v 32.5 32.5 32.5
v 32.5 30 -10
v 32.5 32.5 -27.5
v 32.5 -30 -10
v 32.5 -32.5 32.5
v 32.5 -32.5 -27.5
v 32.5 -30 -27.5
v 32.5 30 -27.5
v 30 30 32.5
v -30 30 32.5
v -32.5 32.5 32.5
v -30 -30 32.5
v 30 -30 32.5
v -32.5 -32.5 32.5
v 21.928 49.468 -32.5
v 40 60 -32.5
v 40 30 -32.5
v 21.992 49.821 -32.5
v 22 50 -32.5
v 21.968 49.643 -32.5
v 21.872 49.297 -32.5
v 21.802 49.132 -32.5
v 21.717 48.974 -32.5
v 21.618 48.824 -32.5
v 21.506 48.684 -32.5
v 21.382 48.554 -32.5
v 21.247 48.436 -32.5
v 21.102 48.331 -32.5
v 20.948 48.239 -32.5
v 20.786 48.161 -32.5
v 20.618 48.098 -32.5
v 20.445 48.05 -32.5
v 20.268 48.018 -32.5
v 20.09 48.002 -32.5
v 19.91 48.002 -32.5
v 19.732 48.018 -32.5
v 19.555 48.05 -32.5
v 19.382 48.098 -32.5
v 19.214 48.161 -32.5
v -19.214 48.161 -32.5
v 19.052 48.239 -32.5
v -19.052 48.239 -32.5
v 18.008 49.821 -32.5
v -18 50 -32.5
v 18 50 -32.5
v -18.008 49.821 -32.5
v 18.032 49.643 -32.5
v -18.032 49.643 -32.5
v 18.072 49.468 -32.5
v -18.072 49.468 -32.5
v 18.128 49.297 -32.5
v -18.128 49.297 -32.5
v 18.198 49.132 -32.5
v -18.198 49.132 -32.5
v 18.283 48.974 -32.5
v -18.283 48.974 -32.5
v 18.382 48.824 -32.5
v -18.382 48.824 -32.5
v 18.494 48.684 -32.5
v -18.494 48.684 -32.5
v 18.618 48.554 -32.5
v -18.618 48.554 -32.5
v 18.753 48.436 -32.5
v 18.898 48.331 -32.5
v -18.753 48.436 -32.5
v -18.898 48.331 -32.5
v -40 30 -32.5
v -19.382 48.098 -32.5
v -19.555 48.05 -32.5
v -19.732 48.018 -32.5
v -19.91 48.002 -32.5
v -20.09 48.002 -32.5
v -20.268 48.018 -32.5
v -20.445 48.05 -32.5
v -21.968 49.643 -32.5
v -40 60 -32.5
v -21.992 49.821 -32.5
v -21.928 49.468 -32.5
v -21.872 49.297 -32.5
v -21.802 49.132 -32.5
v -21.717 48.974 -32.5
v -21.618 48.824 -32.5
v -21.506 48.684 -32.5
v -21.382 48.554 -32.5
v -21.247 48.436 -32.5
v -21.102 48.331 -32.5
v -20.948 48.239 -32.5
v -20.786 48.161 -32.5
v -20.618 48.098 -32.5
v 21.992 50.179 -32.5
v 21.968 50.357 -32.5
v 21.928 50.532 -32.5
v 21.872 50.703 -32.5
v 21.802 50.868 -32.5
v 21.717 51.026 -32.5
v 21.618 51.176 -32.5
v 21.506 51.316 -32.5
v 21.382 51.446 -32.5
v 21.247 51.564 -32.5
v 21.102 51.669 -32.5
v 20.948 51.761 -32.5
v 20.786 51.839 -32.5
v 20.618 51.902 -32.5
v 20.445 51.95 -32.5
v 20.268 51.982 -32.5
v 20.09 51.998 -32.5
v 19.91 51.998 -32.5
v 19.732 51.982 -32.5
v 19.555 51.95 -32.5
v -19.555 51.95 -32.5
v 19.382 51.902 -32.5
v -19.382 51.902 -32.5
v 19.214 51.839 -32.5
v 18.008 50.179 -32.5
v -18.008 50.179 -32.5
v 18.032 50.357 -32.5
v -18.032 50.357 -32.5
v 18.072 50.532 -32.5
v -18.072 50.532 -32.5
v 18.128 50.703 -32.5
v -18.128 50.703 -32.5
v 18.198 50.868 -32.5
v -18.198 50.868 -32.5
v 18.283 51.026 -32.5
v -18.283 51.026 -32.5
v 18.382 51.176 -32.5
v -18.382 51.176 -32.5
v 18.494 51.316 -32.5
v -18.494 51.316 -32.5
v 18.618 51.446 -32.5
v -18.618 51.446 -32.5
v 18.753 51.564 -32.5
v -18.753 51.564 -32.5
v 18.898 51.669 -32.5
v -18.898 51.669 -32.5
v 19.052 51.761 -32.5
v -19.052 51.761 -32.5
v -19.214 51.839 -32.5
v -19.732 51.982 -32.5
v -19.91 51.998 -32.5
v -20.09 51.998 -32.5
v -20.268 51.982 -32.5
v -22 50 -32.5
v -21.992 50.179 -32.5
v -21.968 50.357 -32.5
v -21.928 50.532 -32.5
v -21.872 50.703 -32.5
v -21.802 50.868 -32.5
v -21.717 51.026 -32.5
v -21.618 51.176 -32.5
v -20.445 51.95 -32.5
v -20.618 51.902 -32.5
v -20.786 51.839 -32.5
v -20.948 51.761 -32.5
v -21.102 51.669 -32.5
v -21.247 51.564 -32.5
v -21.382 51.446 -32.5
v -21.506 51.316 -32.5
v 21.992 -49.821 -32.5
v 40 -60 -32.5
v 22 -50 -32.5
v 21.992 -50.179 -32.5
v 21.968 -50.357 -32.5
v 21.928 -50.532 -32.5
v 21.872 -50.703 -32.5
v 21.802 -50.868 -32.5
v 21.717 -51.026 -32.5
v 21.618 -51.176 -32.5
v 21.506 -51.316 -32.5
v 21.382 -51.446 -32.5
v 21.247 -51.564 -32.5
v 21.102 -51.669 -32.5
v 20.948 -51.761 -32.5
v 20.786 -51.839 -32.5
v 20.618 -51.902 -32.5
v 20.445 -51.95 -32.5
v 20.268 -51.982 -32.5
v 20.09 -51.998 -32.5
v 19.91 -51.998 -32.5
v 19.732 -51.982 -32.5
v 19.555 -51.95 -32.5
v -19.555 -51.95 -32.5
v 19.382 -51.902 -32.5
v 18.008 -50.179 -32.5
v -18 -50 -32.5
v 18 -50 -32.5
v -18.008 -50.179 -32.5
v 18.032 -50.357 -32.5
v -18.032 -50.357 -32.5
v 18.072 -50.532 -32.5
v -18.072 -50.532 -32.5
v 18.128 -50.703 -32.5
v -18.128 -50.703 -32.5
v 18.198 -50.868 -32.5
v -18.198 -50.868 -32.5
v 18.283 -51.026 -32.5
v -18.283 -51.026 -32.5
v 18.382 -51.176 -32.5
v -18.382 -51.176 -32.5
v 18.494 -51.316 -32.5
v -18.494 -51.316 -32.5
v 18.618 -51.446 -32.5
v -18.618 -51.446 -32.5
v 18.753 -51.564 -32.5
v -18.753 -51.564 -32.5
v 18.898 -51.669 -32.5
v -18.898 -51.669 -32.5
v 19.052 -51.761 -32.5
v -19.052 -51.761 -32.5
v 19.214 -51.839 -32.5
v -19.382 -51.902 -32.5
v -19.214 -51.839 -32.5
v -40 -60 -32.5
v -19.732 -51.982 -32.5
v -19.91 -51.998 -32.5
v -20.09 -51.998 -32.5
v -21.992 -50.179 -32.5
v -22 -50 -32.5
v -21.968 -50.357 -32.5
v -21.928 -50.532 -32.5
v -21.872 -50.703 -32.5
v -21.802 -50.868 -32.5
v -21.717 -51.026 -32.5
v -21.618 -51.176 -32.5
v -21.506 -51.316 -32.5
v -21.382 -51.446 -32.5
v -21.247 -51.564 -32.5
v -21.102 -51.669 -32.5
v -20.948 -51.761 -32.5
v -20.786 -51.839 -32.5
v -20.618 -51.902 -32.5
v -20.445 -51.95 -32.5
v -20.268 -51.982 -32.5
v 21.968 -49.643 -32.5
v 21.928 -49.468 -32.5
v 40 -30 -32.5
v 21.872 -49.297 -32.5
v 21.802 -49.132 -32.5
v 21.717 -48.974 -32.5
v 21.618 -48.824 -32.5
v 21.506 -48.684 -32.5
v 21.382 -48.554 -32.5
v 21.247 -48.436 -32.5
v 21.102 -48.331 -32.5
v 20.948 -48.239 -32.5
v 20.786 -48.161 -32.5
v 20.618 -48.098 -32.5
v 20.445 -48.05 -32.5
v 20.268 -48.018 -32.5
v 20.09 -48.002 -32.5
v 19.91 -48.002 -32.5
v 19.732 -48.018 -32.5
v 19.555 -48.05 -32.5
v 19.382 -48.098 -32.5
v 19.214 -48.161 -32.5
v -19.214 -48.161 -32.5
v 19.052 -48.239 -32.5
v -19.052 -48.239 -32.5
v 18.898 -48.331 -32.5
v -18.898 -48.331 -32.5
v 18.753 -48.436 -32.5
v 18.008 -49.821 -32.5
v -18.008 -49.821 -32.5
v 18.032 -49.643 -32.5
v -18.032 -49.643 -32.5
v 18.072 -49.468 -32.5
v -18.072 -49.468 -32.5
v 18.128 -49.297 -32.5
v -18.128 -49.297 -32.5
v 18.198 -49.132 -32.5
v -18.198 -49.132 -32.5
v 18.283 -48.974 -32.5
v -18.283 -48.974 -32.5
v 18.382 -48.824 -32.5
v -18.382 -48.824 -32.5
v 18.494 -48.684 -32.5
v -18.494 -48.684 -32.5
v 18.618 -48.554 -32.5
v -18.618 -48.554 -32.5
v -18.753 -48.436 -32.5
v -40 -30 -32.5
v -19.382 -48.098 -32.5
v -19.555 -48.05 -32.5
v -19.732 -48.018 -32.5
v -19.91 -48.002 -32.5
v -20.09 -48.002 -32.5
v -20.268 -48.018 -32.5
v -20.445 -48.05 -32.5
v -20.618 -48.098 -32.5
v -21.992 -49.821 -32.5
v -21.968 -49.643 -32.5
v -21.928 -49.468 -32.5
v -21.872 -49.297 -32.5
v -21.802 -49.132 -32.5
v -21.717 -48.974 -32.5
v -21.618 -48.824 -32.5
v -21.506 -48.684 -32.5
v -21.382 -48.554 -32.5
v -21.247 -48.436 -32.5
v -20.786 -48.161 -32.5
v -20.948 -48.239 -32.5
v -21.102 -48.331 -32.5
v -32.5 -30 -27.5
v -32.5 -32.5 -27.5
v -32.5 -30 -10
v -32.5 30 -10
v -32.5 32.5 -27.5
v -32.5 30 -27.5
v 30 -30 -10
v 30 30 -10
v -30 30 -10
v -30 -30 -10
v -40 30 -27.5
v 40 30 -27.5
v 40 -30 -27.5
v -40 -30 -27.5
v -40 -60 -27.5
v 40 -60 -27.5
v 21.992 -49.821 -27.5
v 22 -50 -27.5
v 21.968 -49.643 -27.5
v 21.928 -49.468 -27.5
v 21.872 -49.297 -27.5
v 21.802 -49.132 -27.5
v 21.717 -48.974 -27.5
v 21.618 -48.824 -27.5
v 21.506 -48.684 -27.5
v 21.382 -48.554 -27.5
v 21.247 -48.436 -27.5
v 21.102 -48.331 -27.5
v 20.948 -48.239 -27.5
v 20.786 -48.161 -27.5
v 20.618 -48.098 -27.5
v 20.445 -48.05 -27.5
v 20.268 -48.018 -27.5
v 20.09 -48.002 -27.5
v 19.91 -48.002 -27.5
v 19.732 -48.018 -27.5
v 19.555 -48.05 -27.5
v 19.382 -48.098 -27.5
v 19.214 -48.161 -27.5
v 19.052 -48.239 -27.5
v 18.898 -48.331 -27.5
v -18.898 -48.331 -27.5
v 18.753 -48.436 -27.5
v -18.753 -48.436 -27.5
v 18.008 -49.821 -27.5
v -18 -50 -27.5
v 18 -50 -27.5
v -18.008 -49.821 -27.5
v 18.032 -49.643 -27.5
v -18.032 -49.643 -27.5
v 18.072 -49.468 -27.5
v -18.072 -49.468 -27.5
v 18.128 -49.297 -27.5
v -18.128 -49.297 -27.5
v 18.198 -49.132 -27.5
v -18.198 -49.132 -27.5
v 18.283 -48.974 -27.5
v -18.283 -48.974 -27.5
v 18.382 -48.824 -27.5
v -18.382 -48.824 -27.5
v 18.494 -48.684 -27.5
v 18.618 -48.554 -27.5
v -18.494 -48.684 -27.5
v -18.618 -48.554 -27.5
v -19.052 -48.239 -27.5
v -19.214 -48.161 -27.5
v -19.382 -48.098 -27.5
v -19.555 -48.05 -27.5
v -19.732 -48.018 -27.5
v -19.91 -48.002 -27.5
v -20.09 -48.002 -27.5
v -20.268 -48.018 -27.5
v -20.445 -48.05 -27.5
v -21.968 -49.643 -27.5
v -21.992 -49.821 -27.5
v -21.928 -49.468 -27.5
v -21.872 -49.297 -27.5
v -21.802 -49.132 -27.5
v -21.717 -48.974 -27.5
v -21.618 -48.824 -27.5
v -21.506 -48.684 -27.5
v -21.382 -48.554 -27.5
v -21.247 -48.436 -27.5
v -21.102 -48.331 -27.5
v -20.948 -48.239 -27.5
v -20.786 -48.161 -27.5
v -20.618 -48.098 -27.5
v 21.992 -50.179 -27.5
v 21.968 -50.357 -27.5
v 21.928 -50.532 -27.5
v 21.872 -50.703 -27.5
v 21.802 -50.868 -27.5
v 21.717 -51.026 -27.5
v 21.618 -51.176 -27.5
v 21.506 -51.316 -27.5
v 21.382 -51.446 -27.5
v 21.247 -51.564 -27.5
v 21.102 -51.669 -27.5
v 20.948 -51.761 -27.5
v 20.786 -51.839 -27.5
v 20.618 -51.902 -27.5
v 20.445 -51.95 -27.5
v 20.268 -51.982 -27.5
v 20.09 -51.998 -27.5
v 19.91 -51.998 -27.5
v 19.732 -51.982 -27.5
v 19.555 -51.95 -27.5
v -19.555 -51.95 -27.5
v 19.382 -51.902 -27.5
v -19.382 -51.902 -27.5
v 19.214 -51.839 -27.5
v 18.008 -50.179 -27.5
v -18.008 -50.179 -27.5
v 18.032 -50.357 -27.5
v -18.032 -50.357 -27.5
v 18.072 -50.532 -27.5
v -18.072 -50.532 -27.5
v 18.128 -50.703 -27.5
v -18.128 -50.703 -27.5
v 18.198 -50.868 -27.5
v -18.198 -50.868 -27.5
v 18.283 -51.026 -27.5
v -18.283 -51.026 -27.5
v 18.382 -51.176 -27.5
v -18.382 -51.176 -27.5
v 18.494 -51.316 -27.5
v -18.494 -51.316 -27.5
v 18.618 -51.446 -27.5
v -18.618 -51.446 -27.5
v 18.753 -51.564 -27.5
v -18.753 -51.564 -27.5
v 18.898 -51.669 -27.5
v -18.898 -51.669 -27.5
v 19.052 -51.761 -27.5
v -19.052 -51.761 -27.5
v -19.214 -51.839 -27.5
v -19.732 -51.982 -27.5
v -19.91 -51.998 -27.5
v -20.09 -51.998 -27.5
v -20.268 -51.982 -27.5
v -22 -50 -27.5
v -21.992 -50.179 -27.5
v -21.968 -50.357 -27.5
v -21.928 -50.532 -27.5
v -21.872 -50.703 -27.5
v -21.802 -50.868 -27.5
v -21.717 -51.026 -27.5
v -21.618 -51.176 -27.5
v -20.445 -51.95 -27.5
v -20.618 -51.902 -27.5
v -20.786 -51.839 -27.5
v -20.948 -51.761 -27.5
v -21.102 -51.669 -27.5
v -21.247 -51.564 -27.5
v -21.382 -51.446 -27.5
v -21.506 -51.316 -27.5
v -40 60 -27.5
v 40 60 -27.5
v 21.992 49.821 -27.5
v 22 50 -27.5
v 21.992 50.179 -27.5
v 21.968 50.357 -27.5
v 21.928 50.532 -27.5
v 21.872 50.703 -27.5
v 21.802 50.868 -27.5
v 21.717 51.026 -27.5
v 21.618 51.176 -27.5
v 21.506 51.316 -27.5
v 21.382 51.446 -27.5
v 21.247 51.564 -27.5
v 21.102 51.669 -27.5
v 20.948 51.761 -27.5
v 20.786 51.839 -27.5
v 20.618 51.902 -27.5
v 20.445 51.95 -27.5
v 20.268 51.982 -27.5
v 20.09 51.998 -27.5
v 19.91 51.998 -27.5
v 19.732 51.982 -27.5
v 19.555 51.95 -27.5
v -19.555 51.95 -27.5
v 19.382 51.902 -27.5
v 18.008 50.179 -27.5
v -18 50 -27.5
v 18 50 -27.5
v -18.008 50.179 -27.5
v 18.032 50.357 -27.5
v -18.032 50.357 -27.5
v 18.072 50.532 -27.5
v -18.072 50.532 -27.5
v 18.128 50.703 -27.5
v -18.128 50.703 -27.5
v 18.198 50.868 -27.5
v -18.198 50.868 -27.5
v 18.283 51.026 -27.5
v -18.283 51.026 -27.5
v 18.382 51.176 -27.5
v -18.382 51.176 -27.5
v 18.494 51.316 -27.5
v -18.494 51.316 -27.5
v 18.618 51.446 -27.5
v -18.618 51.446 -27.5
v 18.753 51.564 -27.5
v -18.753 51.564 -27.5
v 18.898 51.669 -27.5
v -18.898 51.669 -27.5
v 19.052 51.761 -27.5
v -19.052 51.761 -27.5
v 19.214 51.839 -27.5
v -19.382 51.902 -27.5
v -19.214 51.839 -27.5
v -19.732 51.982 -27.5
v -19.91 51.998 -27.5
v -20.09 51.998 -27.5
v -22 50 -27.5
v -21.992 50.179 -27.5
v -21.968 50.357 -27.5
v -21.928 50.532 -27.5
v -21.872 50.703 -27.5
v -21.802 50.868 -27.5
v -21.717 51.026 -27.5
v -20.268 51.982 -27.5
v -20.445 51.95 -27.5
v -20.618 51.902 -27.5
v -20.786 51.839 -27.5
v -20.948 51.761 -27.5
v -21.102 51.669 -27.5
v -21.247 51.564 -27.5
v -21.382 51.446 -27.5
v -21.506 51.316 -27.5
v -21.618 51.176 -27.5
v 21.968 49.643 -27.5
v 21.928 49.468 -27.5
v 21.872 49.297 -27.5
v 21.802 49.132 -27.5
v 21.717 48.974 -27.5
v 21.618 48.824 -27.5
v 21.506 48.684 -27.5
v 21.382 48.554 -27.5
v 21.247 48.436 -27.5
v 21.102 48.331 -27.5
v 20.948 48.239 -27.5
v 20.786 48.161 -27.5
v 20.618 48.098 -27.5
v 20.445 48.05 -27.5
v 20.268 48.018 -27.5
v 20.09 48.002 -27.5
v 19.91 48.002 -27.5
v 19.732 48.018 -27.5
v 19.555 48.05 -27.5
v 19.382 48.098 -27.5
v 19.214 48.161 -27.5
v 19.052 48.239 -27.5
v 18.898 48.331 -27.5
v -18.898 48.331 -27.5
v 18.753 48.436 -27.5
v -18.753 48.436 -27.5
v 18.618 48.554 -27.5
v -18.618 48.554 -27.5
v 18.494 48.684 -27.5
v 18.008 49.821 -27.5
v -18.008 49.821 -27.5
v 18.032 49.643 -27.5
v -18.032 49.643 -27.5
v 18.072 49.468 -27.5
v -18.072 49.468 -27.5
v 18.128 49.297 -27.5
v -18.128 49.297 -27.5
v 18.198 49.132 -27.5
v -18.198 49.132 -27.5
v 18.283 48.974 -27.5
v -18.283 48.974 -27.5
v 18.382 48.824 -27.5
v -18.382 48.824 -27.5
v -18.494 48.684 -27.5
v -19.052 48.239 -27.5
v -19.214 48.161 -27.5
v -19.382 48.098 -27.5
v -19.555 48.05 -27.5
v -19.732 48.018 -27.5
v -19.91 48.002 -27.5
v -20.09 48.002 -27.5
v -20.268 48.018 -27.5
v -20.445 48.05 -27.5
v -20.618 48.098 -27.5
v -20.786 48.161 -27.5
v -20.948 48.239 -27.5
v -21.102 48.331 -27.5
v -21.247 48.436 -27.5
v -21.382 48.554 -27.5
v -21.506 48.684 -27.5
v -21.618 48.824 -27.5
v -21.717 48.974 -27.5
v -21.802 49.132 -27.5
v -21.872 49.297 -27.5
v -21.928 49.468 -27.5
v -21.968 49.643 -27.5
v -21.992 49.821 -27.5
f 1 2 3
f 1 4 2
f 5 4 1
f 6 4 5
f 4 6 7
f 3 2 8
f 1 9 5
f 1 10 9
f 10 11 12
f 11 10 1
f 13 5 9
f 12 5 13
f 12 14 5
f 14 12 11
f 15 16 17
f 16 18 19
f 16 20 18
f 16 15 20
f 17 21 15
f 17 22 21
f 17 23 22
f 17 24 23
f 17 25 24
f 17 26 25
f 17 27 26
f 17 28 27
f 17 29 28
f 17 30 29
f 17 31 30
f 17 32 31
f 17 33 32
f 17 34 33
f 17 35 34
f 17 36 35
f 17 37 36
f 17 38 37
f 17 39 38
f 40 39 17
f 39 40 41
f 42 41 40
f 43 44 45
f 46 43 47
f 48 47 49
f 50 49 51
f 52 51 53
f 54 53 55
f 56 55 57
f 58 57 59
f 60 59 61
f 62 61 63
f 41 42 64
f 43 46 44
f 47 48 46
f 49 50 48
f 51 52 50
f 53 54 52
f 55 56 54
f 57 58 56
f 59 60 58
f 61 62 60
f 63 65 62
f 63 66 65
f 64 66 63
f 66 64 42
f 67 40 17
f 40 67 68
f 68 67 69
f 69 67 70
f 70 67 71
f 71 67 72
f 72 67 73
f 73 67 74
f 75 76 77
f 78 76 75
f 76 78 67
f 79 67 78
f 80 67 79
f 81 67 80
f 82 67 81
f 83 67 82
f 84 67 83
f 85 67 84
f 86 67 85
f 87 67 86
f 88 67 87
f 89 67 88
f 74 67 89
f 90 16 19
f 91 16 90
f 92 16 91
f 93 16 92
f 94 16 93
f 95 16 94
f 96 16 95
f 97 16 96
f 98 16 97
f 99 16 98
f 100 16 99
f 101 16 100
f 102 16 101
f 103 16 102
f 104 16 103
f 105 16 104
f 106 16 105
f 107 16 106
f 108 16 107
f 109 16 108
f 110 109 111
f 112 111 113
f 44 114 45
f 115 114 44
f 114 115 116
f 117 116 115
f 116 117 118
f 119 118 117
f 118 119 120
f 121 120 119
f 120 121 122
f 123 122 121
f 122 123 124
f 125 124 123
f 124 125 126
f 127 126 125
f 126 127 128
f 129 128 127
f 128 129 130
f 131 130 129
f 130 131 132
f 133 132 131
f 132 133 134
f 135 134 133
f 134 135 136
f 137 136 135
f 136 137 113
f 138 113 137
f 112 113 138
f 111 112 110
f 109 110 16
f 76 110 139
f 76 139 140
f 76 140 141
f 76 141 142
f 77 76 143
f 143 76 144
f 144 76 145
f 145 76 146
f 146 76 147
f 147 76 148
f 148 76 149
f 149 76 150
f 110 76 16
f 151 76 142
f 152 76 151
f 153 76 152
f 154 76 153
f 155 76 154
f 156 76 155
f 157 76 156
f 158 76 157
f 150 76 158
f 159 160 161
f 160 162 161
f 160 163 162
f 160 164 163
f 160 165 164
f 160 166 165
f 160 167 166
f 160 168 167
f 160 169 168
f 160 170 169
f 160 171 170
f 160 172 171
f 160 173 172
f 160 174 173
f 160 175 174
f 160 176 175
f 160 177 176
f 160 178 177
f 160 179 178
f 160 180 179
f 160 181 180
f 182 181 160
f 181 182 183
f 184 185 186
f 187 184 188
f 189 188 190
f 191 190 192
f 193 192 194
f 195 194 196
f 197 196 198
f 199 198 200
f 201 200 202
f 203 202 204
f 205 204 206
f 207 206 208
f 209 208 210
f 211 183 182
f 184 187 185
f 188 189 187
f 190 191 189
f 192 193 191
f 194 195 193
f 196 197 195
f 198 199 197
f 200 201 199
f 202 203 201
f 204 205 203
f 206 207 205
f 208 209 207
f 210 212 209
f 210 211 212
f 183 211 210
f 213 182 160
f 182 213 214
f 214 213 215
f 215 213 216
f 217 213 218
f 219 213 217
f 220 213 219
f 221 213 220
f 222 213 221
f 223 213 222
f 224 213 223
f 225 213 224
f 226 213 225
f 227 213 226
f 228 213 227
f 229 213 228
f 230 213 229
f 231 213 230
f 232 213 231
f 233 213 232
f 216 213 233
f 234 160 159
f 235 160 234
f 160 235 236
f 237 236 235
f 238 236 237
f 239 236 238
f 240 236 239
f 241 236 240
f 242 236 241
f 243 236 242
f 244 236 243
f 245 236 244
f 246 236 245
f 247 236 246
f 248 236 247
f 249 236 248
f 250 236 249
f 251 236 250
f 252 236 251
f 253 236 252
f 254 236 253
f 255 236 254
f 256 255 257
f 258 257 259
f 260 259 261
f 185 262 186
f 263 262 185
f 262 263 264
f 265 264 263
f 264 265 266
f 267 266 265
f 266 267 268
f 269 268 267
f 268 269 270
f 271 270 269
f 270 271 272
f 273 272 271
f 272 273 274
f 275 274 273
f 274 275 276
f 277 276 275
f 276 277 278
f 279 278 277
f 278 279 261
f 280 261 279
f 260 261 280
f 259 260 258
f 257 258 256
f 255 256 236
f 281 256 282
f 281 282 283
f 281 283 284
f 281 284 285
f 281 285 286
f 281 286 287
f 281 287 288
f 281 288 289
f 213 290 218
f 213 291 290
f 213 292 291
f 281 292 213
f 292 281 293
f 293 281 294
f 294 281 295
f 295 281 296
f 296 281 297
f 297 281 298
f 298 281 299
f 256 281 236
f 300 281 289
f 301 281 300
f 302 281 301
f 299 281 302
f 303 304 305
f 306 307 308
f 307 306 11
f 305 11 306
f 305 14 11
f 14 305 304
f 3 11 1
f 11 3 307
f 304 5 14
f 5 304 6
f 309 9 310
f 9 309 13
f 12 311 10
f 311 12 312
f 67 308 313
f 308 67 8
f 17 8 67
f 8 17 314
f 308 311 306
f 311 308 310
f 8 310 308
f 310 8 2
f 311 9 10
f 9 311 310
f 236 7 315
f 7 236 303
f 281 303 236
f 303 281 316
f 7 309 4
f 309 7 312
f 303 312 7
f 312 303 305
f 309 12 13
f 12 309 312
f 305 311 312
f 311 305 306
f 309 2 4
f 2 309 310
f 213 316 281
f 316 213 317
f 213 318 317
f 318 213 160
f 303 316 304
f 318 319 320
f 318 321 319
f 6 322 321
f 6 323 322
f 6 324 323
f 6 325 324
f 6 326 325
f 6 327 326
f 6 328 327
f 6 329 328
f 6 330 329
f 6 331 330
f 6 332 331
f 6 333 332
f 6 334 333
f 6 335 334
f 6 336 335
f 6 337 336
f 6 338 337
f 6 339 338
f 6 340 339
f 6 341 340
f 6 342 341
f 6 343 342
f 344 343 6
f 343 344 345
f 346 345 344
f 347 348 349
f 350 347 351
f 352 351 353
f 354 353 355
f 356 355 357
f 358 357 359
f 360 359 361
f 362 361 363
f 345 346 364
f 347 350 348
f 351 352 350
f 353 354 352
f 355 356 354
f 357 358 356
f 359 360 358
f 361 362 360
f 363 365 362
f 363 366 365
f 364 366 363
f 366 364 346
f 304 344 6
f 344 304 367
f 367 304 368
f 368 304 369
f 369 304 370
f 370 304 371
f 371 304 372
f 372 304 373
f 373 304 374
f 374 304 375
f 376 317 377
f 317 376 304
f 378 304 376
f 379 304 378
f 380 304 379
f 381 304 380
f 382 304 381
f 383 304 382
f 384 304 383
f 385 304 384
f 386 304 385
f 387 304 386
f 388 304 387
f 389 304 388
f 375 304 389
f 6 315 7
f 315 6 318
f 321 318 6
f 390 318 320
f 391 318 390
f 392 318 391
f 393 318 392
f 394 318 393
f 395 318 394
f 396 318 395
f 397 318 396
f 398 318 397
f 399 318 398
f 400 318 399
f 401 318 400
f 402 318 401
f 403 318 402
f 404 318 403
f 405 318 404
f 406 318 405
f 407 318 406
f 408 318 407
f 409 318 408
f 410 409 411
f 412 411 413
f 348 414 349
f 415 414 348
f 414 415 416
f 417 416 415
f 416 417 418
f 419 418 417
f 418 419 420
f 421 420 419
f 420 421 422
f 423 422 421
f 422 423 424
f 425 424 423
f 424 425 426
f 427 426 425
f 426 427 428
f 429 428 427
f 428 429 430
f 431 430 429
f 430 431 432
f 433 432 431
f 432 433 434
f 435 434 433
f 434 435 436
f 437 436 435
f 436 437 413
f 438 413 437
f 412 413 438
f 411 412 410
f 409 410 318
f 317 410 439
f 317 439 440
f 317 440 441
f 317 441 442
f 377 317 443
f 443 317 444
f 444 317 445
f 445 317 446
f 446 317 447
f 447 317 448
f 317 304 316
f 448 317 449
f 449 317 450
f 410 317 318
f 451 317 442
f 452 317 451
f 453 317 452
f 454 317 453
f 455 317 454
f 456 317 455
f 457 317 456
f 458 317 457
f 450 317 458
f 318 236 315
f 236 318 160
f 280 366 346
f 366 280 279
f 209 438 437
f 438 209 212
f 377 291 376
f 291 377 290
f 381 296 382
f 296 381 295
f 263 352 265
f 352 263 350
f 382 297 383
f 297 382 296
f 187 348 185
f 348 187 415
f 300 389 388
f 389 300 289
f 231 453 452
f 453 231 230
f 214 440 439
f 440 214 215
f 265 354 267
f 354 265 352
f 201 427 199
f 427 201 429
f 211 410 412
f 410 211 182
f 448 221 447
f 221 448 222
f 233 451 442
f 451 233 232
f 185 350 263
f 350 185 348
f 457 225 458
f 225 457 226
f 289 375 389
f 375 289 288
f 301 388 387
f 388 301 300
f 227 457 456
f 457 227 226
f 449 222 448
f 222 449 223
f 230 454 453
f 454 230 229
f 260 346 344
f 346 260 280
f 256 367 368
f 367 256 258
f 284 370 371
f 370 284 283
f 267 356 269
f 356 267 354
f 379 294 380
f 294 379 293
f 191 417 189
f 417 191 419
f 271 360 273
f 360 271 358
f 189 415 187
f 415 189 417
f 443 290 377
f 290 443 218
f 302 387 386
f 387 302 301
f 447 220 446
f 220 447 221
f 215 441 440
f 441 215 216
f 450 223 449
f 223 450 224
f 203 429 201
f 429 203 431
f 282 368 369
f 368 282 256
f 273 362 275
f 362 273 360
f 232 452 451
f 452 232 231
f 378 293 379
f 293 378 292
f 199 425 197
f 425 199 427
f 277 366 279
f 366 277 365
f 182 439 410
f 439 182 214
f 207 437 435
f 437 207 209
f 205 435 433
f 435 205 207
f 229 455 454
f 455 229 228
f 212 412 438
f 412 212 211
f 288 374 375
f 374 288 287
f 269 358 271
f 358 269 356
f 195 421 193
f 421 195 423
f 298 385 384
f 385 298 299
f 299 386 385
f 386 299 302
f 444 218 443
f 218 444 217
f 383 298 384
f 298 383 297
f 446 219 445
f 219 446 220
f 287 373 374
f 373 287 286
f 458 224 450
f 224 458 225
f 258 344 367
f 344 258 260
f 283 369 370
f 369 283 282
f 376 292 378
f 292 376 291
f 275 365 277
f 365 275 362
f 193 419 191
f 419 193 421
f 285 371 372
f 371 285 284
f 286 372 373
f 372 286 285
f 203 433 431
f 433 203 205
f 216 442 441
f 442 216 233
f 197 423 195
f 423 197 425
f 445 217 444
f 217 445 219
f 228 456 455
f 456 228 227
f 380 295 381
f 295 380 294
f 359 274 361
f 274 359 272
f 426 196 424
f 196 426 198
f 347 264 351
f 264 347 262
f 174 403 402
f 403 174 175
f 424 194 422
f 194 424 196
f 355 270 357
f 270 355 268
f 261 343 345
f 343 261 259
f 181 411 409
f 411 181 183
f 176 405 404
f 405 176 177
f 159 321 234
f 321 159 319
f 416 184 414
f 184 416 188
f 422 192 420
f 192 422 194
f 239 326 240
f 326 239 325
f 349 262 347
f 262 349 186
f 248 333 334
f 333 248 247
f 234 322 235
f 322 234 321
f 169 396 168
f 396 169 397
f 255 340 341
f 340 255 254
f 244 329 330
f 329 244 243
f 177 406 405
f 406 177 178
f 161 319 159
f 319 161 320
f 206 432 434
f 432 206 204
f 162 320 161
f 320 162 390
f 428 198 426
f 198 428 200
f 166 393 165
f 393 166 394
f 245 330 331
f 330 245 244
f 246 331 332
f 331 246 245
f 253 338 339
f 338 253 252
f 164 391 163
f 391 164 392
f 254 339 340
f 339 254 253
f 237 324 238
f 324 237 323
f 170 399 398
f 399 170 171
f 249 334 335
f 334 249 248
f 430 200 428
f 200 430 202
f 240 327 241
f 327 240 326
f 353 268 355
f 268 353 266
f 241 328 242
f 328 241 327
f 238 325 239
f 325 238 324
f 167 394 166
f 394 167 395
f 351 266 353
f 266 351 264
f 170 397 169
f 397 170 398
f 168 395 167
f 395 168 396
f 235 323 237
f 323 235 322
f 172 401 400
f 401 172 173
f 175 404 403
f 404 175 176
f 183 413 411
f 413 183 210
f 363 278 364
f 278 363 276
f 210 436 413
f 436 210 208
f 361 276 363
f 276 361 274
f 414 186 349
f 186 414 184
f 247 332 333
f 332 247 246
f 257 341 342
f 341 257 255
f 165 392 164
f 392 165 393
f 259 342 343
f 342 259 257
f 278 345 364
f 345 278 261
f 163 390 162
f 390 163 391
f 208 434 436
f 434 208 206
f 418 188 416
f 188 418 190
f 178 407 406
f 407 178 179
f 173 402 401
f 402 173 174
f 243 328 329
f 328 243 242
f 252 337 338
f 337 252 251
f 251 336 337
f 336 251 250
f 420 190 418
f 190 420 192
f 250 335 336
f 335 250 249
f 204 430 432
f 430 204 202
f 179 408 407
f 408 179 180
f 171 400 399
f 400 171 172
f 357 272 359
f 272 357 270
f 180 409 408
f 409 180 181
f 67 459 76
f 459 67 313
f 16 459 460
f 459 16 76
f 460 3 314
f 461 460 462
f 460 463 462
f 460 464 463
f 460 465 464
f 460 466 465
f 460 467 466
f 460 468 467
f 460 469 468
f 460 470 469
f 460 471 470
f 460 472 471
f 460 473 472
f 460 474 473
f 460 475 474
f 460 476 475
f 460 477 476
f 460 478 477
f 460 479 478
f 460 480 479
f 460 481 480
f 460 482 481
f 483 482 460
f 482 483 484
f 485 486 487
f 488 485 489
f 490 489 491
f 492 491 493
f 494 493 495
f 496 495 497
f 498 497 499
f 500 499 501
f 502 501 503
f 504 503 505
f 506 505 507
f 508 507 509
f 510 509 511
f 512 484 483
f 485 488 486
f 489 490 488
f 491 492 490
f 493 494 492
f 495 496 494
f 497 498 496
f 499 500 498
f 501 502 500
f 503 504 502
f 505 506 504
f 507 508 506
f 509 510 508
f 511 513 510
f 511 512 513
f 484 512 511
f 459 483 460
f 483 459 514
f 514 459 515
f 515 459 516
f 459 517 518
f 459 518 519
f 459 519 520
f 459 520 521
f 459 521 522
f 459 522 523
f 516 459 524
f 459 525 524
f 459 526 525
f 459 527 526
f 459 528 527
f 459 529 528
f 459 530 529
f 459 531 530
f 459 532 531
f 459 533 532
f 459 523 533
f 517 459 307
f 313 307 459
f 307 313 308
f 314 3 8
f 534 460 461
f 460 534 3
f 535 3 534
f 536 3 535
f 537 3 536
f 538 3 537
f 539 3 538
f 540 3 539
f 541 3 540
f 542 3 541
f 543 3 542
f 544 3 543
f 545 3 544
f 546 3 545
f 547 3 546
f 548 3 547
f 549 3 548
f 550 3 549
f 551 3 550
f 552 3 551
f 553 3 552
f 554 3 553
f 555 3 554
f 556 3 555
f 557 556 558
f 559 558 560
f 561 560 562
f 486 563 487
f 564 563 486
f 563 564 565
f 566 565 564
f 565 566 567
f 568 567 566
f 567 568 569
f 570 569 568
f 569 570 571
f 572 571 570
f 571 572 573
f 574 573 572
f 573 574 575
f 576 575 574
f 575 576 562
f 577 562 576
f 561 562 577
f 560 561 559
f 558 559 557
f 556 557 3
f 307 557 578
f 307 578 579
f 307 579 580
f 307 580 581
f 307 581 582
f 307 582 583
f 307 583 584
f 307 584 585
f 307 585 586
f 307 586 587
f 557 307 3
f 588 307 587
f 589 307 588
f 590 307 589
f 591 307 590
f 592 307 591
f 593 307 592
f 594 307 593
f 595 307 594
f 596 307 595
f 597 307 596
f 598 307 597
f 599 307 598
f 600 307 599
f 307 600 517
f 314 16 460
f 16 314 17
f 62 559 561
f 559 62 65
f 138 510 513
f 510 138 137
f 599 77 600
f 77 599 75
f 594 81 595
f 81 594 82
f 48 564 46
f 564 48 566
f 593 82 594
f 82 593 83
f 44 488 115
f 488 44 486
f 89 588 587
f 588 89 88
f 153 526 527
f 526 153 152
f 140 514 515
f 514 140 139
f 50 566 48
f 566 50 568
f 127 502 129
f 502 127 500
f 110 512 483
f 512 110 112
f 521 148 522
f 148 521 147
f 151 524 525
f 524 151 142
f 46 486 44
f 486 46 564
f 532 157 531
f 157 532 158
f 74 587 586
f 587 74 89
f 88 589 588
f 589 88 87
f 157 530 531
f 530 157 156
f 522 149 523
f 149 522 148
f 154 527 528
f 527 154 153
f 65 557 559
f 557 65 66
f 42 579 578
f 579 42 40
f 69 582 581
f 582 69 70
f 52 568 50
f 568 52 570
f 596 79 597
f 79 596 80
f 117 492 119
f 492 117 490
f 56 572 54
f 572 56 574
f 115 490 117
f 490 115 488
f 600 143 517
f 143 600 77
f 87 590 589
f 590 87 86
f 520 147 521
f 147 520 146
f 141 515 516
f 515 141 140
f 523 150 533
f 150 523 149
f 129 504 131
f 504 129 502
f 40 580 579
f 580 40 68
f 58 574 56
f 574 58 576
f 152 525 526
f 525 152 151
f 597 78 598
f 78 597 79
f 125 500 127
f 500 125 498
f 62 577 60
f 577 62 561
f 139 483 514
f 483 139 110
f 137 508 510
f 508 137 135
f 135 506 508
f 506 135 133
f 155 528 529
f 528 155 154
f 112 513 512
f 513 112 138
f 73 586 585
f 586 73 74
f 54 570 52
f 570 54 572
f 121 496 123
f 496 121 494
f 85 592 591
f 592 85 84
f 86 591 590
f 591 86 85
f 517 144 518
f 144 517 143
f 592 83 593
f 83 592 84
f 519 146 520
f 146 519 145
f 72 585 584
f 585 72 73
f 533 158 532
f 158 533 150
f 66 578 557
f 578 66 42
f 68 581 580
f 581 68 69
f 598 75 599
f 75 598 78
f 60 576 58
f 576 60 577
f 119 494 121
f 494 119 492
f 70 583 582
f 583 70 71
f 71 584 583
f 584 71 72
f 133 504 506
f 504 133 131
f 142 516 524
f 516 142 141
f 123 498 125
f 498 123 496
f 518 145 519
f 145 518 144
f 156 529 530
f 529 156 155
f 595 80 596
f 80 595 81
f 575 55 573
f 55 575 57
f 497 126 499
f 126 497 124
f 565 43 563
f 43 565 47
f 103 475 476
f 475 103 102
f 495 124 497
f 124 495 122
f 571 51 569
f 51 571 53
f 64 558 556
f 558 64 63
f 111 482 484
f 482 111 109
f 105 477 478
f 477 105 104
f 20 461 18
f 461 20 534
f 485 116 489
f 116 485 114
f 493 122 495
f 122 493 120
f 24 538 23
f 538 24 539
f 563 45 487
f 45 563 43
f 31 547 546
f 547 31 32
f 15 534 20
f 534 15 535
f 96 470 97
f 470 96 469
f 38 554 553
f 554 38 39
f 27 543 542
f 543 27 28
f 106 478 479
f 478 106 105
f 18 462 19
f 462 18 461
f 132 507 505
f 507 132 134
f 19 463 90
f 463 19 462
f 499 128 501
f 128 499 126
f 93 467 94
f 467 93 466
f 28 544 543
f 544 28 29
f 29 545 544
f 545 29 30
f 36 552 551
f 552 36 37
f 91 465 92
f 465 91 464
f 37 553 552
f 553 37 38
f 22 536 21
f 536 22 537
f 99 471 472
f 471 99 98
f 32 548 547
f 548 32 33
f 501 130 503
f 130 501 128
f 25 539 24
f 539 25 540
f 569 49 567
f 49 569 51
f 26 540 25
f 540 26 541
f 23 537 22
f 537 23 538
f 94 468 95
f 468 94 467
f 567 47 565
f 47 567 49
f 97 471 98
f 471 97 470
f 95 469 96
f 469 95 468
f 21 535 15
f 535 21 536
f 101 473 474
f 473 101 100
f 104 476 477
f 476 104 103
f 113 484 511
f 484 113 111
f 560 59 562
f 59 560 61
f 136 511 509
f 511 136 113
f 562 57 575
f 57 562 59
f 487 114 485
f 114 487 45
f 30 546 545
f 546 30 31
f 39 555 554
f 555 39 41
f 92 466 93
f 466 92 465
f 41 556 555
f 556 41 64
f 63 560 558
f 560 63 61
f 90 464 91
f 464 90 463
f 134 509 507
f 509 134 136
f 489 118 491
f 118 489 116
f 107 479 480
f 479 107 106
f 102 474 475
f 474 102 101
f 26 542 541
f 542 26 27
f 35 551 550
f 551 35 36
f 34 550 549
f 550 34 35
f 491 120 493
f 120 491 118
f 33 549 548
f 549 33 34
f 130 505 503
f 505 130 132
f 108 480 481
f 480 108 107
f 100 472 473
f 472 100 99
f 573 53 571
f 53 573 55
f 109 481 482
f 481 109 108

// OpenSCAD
/* Marc Amil 
Project date: 20.2.2021
Deadline: 23.2.2021

PROJECT: ABRASIVE TESTING:  Housing 
*/
/////////PARAMETERS////////////////
// 1 unit = 1 mm
$fn = 70;
//OUTER CASING FOR HOUSING
outer_housing_width = 65;
outer_housing_height = 65;
outer_housing_depth = 65;
//INNER CASING FOR HOUSING  --> USE TO MAKE THE HOLES 
inner_housing_width = 60;
inner_housing_height = 80;
inner_housing_depth = 60;

//SLITS FOR THE CASING --> FOR SLED TO SLIDE THROUGH 
slit_housing_width = 150;
slit_housing_height = 30;
slit_housing_depth = 60;

// HINGES ON BOTH SIDES FOR FIXATION
hinge_housing_width = 80;
hinge_housing_height = 30;
hinge_housing_depth = 5;


// CYLINDER HOLE FOR HINGES --> FIXED BY SCREWS 
hinge_hole_height = 15;
hinge_hole_radius = 2;

// SLED PARAMETERS 


/////////RENDERS//////////////////
housing();
Hinge();
mirror([0,1,0]) {
    Hinge();
}



////////MODULES//////////////////
module housing() {
    difference(){
        cube([outer_housing_width, outer_housing_depth, outer_housing_height], center = true);
        cube([inner_housing_width, inner_housing_depth, inner_housing_height], center = true);
        translate([30,0, -25]) {
    cube([slit_housing_width, slit_housing_depth, slit_housing_height], center = true); 
        }
    }
}

module hingescube() {
    rotate([90, 0, 0]) {
        translate([0,-28,40]) {
    cube([hinge_housing_width, hinge_housing_depth, hinge_housing_height], center = true);
        } 
    }
}

module hingeshole() {
    cylinder( h  = hinge_hole_height, r = hinge_hole_radius, center = true);
}


module Hinge(){
   translate([0, -5,-2]){
difference() {
        hingescube();
       translate([-20,-45,-30]) {
        hingeshole();
       }
       translate([20,-45,-30]) {
         hingeshole();
       }
   }
 }
}
 
